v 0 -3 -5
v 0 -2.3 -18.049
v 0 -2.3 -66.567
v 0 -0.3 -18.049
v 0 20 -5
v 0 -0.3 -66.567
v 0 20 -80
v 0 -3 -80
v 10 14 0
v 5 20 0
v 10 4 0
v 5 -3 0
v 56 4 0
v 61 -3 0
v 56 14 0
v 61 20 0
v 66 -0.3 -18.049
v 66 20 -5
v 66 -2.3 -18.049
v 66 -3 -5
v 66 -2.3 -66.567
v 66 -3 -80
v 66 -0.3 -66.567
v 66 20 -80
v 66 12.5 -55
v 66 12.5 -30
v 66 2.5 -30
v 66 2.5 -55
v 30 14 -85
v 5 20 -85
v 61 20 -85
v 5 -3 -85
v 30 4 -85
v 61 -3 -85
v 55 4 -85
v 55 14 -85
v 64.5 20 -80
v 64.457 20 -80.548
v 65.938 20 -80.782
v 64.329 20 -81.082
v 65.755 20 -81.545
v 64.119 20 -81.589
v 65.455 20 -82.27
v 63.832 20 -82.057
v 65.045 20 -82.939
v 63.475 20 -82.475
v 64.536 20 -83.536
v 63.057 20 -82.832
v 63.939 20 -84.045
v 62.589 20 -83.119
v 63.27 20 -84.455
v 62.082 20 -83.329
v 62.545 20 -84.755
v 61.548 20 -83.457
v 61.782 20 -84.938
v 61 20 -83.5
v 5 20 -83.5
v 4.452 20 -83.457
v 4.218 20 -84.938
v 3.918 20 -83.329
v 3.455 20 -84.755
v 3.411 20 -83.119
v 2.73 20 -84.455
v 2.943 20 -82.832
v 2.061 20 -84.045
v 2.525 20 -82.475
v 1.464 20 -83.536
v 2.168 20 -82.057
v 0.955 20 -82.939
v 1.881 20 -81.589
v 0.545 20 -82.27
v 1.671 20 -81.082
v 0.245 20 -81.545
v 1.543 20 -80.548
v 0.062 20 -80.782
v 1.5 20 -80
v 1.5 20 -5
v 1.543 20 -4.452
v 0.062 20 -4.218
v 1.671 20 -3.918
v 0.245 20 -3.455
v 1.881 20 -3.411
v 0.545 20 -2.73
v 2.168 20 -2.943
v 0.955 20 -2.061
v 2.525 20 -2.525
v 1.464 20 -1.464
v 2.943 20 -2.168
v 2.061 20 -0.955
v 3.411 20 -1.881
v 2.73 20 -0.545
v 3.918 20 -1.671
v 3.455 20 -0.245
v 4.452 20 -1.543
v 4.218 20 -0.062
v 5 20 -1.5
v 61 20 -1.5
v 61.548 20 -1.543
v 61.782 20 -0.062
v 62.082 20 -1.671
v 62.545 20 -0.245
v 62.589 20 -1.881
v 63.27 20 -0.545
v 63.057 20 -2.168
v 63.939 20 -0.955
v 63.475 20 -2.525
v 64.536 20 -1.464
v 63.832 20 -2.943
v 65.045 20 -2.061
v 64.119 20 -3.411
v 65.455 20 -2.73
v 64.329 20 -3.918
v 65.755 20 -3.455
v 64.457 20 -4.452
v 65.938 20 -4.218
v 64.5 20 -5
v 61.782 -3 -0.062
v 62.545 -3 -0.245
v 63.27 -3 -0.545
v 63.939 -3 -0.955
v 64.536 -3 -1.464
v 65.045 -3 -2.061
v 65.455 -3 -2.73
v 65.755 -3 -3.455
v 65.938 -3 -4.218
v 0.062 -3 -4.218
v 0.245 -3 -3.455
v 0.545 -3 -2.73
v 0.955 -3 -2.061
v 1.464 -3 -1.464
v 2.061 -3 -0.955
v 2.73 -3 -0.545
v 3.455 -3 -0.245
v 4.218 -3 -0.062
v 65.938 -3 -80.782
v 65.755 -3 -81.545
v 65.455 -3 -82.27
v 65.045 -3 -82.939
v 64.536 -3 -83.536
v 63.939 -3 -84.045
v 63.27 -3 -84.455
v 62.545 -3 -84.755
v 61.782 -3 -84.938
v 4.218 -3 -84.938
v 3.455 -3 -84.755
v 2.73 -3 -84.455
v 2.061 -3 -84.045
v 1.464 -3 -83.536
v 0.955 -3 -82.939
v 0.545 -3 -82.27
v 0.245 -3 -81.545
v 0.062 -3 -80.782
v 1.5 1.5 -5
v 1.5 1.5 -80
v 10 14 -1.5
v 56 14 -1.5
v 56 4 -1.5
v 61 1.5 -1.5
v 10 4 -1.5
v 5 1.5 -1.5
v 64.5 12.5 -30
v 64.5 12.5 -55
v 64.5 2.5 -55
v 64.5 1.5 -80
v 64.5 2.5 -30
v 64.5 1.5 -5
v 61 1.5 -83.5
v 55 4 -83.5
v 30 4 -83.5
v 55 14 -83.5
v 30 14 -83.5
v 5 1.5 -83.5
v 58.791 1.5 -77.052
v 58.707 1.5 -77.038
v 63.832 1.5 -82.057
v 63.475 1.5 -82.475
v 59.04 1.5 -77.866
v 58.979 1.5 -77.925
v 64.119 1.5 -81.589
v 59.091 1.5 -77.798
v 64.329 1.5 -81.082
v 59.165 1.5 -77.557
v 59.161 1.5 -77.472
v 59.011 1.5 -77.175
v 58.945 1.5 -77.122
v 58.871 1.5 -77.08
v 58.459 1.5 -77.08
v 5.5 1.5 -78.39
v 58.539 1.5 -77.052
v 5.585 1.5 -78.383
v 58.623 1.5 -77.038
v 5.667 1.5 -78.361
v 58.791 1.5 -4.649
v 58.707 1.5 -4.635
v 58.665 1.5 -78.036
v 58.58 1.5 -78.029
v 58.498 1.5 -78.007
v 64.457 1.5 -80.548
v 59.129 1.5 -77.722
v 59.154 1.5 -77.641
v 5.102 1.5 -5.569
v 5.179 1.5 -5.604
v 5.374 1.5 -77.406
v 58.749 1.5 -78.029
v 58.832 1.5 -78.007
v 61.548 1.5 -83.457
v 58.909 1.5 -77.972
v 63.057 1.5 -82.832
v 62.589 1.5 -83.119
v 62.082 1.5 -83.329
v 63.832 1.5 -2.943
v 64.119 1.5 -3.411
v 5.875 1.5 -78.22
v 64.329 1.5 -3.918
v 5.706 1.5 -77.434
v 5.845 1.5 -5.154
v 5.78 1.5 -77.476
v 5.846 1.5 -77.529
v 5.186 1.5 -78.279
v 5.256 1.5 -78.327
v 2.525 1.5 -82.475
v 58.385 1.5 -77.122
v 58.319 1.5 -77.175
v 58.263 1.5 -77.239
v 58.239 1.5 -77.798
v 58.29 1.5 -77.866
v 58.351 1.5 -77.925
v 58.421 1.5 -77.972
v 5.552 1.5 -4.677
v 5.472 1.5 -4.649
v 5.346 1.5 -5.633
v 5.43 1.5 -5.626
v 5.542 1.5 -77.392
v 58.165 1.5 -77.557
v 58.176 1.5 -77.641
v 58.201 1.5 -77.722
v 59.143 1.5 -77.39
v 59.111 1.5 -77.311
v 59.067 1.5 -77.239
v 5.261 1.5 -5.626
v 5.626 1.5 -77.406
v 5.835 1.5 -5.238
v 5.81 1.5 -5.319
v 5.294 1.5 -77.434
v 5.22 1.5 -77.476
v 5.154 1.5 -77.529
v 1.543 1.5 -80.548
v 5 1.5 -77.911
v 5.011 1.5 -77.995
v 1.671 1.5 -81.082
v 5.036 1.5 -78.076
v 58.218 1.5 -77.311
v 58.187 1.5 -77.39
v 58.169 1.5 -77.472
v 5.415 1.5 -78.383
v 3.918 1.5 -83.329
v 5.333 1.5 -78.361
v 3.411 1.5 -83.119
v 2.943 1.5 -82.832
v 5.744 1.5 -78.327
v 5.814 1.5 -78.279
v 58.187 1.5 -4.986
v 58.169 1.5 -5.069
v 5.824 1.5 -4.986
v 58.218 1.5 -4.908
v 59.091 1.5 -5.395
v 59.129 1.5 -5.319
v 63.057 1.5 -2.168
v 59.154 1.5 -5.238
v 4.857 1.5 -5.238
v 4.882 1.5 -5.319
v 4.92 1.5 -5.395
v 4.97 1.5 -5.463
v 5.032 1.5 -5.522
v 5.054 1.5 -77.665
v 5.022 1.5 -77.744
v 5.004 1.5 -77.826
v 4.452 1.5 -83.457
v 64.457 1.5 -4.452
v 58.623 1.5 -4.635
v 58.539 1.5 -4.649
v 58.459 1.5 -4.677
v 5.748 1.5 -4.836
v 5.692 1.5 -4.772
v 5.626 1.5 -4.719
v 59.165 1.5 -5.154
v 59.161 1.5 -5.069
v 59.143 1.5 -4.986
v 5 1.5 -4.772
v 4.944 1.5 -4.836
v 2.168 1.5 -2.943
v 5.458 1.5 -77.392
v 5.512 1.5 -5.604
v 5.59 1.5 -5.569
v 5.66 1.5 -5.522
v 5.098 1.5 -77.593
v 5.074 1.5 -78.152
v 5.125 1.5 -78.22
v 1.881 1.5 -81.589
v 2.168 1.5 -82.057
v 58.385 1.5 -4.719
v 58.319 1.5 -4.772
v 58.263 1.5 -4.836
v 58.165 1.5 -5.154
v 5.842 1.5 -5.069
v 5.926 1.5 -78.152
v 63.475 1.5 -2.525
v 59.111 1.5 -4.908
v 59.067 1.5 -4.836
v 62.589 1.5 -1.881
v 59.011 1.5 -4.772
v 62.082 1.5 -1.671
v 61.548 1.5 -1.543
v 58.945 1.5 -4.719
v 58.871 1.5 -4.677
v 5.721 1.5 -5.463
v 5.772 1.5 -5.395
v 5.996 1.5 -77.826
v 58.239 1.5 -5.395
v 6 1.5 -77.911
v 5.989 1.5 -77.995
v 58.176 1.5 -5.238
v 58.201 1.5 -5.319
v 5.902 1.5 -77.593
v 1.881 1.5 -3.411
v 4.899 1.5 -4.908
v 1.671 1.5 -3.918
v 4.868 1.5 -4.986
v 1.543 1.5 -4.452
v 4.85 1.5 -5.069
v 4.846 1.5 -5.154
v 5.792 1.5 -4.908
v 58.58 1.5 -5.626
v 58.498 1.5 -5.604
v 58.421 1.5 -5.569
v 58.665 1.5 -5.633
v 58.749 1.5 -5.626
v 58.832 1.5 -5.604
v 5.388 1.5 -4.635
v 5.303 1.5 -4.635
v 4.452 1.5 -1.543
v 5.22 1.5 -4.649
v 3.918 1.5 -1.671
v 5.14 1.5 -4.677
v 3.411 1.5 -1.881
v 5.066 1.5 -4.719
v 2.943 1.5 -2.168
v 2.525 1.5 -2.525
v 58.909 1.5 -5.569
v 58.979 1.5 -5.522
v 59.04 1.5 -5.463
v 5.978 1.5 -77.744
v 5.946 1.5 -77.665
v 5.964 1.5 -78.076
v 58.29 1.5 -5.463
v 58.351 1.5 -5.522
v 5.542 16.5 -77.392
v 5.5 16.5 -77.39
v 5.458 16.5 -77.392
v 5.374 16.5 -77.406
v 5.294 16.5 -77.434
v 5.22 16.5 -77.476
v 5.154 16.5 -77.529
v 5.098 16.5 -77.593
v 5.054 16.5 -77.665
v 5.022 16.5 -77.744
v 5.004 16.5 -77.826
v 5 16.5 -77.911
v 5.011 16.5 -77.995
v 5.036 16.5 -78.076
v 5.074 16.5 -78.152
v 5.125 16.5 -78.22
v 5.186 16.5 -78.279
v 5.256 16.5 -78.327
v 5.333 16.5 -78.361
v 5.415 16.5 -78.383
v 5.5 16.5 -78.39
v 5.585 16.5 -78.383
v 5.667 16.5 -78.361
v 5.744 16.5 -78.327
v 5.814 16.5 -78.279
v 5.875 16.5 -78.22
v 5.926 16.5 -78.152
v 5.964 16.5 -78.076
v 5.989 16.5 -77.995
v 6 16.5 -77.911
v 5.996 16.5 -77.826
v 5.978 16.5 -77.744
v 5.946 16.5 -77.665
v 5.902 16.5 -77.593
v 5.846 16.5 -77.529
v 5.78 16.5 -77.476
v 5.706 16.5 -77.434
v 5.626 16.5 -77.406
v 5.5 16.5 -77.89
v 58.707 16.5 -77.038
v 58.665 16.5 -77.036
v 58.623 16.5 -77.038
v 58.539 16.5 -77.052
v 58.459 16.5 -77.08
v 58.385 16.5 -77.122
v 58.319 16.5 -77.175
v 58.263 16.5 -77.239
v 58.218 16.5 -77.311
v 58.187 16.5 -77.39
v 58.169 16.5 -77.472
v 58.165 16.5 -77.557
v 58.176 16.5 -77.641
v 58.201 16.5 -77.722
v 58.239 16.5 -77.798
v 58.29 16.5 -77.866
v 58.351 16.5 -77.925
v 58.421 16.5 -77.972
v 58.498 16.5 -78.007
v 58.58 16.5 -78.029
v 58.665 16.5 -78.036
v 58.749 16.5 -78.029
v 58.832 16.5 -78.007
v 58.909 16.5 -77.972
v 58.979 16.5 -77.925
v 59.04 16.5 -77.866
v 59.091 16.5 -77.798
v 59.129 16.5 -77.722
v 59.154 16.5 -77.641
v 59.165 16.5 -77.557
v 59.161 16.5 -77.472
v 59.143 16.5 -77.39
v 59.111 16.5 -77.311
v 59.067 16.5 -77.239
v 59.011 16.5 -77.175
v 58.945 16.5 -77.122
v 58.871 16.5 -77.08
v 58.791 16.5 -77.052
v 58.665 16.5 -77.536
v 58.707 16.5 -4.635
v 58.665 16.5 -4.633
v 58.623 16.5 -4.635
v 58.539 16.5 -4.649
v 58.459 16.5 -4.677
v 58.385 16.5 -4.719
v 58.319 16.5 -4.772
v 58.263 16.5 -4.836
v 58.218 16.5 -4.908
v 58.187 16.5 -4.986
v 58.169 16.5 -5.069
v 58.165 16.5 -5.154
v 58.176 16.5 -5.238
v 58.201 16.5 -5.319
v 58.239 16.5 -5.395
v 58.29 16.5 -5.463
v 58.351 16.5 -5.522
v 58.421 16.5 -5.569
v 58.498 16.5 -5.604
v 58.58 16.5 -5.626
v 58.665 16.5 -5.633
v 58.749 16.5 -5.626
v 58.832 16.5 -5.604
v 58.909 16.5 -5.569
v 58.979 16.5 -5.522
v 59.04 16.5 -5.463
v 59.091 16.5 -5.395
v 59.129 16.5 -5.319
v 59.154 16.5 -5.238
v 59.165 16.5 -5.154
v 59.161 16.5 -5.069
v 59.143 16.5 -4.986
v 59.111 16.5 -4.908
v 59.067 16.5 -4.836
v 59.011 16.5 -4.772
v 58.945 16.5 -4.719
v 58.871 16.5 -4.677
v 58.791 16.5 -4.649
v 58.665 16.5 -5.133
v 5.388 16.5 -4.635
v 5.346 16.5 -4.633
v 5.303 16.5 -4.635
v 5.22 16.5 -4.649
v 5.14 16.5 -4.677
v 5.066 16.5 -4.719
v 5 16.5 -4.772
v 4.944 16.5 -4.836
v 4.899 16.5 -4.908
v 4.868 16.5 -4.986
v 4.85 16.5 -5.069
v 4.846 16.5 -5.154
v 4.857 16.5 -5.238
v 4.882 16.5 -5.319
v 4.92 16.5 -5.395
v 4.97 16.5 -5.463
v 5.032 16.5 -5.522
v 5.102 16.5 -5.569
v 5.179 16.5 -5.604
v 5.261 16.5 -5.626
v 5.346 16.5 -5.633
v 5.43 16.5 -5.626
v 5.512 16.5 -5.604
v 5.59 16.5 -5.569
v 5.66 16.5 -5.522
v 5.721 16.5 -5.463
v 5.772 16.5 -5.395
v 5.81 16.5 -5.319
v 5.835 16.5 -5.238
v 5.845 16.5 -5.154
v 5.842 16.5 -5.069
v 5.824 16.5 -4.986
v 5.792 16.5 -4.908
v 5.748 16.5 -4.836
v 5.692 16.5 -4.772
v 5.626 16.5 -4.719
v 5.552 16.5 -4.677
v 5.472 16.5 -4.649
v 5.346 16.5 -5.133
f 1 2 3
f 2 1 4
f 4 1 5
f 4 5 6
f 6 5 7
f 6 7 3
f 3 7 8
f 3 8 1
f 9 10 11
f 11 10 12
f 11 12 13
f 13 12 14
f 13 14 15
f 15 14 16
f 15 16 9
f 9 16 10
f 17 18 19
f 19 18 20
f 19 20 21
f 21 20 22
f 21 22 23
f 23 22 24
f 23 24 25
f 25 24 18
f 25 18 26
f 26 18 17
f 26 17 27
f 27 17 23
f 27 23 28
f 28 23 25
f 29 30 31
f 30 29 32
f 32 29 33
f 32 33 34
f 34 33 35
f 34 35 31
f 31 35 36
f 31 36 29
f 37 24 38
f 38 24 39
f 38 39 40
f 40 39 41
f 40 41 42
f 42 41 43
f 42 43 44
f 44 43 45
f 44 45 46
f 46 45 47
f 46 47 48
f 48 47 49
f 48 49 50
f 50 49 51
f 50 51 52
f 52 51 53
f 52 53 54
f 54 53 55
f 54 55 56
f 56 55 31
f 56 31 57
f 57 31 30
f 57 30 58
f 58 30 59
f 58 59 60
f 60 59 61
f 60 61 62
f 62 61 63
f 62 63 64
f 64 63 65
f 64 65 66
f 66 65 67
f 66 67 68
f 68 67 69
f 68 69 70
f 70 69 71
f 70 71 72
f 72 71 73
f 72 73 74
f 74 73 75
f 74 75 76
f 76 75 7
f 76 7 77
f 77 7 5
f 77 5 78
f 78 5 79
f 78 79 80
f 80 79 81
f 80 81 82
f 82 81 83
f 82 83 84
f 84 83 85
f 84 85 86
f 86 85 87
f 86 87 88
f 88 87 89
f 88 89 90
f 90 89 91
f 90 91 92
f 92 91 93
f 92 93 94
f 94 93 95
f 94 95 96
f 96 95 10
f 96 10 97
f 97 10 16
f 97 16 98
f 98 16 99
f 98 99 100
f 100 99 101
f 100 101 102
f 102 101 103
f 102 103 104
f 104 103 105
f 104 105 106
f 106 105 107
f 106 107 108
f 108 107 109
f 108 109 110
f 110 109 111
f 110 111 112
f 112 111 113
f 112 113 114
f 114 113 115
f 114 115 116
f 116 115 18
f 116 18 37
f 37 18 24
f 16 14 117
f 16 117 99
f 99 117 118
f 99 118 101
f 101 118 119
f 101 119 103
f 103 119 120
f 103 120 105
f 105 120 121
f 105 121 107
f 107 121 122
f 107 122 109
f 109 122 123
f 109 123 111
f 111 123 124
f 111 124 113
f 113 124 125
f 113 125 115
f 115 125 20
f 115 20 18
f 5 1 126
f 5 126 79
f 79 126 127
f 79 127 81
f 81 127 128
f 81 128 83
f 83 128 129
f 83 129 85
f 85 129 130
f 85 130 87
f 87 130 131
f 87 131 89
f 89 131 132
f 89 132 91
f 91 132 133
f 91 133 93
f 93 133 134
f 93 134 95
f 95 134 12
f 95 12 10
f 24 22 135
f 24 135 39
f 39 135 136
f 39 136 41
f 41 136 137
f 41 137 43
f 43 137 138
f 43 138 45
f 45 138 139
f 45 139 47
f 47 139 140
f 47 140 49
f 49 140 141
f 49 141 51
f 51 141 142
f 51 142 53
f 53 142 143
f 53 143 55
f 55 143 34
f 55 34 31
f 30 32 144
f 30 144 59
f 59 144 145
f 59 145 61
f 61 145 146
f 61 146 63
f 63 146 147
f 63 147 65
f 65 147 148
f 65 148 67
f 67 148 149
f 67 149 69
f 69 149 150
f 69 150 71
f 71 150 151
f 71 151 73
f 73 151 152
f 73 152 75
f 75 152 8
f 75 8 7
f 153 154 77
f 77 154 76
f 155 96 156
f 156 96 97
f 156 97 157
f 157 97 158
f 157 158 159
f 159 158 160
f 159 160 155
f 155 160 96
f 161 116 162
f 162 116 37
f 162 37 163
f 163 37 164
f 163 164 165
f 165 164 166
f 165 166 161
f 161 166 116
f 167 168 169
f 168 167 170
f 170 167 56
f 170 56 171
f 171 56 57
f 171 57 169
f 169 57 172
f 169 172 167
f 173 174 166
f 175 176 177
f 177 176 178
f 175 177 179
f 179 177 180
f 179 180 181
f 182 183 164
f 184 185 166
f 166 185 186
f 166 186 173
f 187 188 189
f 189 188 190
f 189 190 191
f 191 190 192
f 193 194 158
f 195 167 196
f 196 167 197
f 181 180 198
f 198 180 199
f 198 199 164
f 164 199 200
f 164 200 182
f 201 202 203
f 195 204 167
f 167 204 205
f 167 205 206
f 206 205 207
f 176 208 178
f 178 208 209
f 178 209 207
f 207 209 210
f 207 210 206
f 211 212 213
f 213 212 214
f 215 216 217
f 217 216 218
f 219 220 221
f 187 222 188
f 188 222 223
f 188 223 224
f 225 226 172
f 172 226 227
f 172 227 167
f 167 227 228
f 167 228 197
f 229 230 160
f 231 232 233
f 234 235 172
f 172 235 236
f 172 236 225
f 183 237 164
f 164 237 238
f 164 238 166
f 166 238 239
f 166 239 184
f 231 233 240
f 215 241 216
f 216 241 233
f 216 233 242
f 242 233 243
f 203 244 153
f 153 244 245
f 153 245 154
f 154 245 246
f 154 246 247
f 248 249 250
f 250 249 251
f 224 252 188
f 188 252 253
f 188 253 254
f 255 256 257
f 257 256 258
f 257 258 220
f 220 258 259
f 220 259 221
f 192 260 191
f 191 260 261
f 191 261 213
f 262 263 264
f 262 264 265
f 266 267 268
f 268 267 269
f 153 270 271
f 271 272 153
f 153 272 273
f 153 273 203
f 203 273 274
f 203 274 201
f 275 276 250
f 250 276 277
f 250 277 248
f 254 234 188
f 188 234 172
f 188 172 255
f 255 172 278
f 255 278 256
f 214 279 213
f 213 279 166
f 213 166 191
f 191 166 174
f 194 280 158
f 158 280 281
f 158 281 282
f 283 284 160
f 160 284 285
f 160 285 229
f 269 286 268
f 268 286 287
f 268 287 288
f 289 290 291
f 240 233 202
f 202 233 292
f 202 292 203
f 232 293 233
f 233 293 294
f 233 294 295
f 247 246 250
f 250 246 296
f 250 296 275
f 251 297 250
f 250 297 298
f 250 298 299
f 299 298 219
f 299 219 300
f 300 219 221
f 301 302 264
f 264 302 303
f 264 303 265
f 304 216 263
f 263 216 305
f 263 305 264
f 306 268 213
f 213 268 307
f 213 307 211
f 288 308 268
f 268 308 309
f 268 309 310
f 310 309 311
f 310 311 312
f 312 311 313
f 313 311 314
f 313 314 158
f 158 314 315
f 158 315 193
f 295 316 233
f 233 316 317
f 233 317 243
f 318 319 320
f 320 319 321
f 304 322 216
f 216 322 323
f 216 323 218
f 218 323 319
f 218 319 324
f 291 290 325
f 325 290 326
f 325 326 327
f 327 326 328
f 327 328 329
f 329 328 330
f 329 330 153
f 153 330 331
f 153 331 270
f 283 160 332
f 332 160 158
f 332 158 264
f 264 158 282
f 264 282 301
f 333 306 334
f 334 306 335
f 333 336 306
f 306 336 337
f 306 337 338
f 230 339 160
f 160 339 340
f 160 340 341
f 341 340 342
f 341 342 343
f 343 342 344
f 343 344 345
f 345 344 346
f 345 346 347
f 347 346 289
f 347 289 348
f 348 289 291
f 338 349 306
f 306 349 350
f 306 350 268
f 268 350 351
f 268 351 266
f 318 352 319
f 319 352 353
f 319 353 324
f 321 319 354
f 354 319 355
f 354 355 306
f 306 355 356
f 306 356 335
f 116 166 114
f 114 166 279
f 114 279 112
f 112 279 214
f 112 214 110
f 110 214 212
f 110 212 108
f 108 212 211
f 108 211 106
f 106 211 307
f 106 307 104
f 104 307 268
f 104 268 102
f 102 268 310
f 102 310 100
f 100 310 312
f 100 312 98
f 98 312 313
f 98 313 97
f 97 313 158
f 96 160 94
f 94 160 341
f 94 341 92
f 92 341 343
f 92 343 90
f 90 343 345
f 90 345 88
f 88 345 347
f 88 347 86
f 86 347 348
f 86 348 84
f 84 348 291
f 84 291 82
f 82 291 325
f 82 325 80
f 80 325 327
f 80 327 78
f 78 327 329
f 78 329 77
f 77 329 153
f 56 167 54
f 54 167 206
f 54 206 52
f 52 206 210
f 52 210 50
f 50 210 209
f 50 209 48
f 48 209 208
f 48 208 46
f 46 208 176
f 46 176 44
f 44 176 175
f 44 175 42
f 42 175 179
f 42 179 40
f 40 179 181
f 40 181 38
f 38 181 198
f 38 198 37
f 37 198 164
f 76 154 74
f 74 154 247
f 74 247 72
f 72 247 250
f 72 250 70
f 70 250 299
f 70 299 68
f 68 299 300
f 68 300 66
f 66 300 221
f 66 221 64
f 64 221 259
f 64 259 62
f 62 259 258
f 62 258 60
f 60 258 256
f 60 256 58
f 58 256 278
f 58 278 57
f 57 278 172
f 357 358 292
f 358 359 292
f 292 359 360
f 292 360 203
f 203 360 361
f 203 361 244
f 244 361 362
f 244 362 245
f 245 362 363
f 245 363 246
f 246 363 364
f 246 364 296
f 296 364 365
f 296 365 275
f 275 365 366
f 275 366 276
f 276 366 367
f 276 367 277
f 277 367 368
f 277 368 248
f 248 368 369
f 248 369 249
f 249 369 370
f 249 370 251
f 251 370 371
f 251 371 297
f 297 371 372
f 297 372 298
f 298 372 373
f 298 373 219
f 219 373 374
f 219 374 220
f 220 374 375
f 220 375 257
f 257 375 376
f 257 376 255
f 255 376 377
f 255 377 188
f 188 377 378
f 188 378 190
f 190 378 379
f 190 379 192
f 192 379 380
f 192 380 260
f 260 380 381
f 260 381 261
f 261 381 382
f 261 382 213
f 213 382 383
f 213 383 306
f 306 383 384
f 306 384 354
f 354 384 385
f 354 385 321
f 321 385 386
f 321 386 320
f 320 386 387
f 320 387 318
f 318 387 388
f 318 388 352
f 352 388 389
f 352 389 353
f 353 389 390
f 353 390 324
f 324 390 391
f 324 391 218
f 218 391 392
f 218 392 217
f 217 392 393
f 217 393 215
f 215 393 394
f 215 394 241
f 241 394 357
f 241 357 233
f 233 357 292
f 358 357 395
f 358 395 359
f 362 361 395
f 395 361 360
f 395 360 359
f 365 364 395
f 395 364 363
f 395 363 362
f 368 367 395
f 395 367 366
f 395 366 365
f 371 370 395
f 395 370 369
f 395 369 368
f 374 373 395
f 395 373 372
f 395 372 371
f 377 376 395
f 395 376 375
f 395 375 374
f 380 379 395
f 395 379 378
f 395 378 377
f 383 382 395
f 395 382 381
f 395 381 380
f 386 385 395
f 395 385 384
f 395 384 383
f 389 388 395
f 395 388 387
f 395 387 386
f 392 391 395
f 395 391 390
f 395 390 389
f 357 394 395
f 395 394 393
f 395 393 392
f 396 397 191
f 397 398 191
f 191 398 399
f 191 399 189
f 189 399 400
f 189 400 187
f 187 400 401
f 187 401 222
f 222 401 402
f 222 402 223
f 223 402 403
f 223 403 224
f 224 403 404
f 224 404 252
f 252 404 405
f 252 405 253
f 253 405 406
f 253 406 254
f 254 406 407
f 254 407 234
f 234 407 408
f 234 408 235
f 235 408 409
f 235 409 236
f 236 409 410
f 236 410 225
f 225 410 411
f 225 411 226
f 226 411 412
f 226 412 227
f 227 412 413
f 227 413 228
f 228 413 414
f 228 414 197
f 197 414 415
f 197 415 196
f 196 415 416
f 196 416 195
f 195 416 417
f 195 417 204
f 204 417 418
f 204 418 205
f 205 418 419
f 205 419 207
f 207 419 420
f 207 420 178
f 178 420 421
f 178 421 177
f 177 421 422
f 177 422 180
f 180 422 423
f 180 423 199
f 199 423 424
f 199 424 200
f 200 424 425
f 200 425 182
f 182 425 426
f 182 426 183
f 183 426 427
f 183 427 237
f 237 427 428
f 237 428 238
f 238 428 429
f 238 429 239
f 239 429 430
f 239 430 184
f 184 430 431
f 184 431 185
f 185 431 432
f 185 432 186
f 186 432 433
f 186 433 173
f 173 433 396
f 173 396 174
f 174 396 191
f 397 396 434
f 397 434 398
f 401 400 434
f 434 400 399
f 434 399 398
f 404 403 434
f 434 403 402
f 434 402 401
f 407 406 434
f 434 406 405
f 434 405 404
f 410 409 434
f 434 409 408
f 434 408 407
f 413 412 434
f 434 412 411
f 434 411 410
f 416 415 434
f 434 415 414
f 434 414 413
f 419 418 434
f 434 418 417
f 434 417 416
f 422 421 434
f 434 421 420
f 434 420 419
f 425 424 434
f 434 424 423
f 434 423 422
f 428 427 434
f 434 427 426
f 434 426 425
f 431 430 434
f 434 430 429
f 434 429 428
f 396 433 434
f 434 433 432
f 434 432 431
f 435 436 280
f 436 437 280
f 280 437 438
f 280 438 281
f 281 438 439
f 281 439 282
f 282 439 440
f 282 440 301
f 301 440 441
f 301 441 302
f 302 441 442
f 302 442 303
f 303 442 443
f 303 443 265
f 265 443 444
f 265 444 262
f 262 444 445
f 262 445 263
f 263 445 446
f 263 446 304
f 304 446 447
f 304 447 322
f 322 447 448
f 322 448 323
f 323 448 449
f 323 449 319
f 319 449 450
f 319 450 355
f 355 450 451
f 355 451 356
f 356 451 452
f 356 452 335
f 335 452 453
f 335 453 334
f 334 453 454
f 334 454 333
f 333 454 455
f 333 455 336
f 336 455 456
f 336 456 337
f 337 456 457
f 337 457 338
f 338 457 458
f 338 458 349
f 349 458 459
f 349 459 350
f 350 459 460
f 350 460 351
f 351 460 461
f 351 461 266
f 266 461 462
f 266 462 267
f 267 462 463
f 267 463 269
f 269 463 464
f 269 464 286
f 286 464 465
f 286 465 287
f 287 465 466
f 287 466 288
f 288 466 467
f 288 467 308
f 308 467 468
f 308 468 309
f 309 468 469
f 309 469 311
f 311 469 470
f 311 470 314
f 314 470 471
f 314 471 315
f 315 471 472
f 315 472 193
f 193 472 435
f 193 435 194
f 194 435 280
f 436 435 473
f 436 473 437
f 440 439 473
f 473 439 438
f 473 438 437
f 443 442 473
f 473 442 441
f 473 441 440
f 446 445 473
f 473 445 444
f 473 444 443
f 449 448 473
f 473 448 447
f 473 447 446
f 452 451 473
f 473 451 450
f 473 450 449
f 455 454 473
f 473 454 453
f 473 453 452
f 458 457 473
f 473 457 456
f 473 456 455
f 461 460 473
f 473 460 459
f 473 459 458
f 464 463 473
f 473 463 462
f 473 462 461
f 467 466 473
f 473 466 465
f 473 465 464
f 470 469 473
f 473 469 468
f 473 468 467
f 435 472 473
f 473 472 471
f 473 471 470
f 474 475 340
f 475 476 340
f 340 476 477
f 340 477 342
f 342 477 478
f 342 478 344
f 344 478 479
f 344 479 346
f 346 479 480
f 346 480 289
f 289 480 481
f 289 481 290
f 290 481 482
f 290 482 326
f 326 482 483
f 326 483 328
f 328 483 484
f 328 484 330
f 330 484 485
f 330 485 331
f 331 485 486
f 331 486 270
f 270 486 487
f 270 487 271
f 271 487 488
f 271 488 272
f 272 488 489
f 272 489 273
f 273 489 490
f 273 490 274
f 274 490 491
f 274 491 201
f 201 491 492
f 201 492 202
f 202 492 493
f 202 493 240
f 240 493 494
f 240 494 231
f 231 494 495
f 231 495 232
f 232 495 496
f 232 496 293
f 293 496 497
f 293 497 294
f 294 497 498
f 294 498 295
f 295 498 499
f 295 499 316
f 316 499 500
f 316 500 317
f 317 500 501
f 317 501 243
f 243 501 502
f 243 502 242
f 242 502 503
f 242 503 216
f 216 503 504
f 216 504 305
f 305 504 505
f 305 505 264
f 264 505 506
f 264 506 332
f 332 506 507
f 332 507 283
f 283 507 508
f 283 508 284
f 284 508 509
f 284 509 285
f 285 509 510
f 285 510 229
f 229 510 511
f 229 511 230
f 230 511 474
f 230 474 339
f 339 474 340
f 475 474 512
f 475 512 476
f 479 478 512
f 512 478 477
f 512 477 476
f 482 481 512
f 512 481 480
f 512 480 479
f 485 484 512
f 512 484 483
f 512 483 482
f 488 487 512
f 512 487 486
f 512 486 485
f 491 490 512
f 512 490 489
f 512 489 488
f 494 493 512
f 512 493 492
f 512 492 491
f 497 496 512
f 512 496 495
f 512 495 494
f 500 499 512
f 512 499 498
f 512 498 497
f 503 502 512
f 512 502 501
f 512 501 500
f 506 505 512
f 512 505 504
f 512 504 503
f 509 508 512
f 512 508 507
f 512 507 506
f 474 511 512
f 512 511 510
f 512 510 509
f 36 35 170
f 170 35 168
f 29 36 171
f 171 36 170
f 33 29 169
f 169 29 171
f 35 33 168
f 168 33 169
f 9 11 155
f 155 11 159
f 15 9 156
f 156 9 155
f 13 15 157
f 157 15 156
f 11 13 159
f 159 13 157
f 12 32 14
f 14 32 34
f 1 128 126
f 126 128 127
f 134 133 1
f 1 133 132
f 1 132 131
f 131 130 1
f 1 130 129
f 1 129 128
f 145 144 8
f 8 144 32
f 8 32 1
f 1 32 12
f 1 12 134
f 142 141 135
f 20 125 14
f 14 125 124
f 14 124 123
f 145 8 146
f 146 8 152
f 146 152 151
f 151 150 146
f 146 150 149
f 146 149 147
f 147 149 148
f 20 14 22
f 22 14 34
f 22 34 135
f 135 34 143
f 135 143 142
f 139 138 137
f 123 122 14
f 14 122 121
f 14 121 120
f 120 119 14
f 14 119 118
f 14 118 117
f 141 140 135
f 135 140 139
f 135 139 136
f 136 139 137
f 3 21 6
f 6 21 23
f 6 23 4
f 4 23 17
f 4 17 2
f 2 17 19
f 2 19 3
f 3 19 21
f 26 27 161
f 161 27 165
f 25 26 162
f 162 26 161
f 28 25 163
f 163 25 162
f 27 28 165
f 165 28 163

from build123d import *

# Parameters (mm, degrees)
SCHIZZO1_W                   = 66
SCHIZZO1_H                   = 85
ESTRUSIONE_ESTRUSIONE1_DEPTH = 20
RACCORDO1_R                  = 5
RACCORDO2_R                  = 5
RACCORDO3_R                  = 5
SVUOTA2_T                    = -1.5
SCHIZZO3_R                   = 0.5
ESTRUSIONE_ESTRUSIONE2_DEPTH = 15
SCHIZZO6_R                   = 0.5
ESTRUSIONE_ESTRUSIONE3_DEPTH = 15
SCHIZZO13_W                  = 25
SCHIZZO13_H                  = 10
TAGLIO_ESTRUSIONE2_DEPTH     = 2
SCHIZZO19_W                  = 46
SCHIZZO19_H                  = 10
TAGLIO_ESTRUSIONE5_DEPTH     = 2
ESTRUSIONE_ESTRUSIONE4_DEPTH = 3
SCHIZZO18_W                  = 48.51759383
SCHIZZO18_H                  = 2
TAGLIO_ESTRUSIONE6_DEPTH     = 80
SCHIZZO22_W                  = 25
SCHIZZO22_H                  = 10
TAGLIO_ESTRUSIONE7_DEPTH     = 2


with BuildPart() as part:
    # Schizzo1 → Estrusione-Estrusione1 (new body)
    with BuildSketch(Plane(origin=(0, 0, 0), x_dir=(1, 0, 0), z_dir=(0, 1, 0))):
        with Locations((33, 42.5)):
            Rectangle(SCHIZZO1_W, SCHIZZO1_H)
    extrude(amount=ESTRUSIONE_ESTRUSIONE1_DEPTH)

    # Raccordo1
    raccordo1_edges = [part.edges().sort_by_distance(p)[0] for p in [
        (66, 10, 0),
        (0, 10, 0),
    ]]
    fillet(raccordo1_edges, radius=RACCORDO1_R)

    # Raccordo2
    raccordo2_edges = [part.edges().sort_by_distance(p)[0] for p in [
        (66, 10, -85),
    ]]
    fillet(raccordo2_edges, radius=RACCORDO2_R)

    # Raccordo3
    raccordo3_edges = [part.edges().sort_by_distance(p)[0] for p in [
        (0, 10, -85),
    ]]
    fillet(raccordo3_edges, radius=RACCORDO3_R)

    # Svuota2
    svuota2_openings = [part.faces().sort_by_distance(p)[0] for p in [
        (33, 20, -42.5),
    ]]
    offset(amount=SVUOTA2_T, openings=svuota2_openings, kind=Kind.INTERSECTION)

    # Schizzo3 → Estrusione-Estrusione2 (add)
    with BuildSketch(Plane(origin=(0, 1.5, 0), x_dir=(1, 0, 0), z_dir=(0, 1, 0))):
        with Locations(Location((5.5, 77.89, 0), (0, 0, 90))):
            Circle(SCHIZZO3_R)
    extrude(amount=ESTRUSIONE_ESTRUSIONE2_DEPTH)

    # Schizzo6 → Estrusione-Estrusione3 (add)
    with BuildSketch(Plane(origin=(0, 1.5, 0), x_dir=(1, 0, 0), z_dir=(0, 1, 0))):
        with Locations(Location((58.664950896, 77.535960271, 0), (0, 0, 90))):
            Circle(SCHIZZO6_R)
        with Locations(Location((58.664950896, 5.132828607, 0), (0, 0, 90))):
            Circle(SCHIZZO6_R)
        with Locations(Location((5.345748971, 5.132828607, 0), (0, 0, 90))):
            Circle(SCHIZZO6_R)
    extrude(amount=ESTRUSIONE_ESTRUSIONE3_DEPTH)

    # Schizzo13 → Taglio-Estrusione2 (cut)
    with BuildSketch(Plane(origin=(0, 0, -85), x_dir=(-1, 0, 0), z_dir=(0, 0, -1))):
        with Locations((-42.5, 9)):
            Rectangle(SCHIZZO13_W, SCHIZZO13_H)
    extrude(amount=-TAGLIO_ESTRUSIONE2_DEPTH, mode=Mode.SUBTRACT)

    # Schizzo19 → Taglio-Estrusione5 (cut)
    with BuildSketch(Plane.XY):
        with Locations((33, 9)):
            Rectangle(SCHIZZO19_W, SCHIZZO19_H)
    extrude(amount=-TAGLIO_ESTRUSIONE5_DEPTH, mode=Mode.SUBTRACT)

    # Schizzo21 → Estrusione-Estrusione4 (add)
    with BuildSketch(Plane.XZ):
        with BuildLine():
            Line((5, 0), (61, 0))
            ThreePointArc((61, 0), (64.535533906, -1.464466094), (66, -5))
            Line((66, -5), (66, -80))
            ThreePointArc((66, -80), (64.535533906, -83.535533906), (61, -85))
            Line((61, -85), (5, -85))
            ThreePointArc((5, -85), (1.464466094, -83.535533906), (0, -80))
            Line((0, -80), (0, -5))
            ThreePointArc((0, -5), (1.464466094, -1.464466094), (5, 0))
        make_face()
    extrude(amount=ESTRUSIONE_ESTRUSIONE4_DEPTH)

    # Schizzo18 → Taglio-Estrusione6 (cut)
    with BuildSketch(Plane.ZY):
        with Locations((-42.307961204, -1.3)):
            Rectangle(SCHIZZO18_W, SCHIZZO18_H)
    extrude(amount=-TAGLIO_ESTRUSIONE6_DEPTH, mode=Mode.SUBTRACT)

    # Schizzo22 → Taglio-Estrusione7 (cut)
    with BuildSketch(Plane(origin=(66, 0, 0), x_dir=(0, 0, -1), z_dir=(1, 0, 0))):
        with Locations((42.5, 7.5)):
            Rectangle(SCHIZZO22_W, SCHIZZO22_H)
    extrude(amount=-TAGLIO_ESTRUSIONE7_DEPTH, mode=Mode.SUBTRACT)


solid = part.part
